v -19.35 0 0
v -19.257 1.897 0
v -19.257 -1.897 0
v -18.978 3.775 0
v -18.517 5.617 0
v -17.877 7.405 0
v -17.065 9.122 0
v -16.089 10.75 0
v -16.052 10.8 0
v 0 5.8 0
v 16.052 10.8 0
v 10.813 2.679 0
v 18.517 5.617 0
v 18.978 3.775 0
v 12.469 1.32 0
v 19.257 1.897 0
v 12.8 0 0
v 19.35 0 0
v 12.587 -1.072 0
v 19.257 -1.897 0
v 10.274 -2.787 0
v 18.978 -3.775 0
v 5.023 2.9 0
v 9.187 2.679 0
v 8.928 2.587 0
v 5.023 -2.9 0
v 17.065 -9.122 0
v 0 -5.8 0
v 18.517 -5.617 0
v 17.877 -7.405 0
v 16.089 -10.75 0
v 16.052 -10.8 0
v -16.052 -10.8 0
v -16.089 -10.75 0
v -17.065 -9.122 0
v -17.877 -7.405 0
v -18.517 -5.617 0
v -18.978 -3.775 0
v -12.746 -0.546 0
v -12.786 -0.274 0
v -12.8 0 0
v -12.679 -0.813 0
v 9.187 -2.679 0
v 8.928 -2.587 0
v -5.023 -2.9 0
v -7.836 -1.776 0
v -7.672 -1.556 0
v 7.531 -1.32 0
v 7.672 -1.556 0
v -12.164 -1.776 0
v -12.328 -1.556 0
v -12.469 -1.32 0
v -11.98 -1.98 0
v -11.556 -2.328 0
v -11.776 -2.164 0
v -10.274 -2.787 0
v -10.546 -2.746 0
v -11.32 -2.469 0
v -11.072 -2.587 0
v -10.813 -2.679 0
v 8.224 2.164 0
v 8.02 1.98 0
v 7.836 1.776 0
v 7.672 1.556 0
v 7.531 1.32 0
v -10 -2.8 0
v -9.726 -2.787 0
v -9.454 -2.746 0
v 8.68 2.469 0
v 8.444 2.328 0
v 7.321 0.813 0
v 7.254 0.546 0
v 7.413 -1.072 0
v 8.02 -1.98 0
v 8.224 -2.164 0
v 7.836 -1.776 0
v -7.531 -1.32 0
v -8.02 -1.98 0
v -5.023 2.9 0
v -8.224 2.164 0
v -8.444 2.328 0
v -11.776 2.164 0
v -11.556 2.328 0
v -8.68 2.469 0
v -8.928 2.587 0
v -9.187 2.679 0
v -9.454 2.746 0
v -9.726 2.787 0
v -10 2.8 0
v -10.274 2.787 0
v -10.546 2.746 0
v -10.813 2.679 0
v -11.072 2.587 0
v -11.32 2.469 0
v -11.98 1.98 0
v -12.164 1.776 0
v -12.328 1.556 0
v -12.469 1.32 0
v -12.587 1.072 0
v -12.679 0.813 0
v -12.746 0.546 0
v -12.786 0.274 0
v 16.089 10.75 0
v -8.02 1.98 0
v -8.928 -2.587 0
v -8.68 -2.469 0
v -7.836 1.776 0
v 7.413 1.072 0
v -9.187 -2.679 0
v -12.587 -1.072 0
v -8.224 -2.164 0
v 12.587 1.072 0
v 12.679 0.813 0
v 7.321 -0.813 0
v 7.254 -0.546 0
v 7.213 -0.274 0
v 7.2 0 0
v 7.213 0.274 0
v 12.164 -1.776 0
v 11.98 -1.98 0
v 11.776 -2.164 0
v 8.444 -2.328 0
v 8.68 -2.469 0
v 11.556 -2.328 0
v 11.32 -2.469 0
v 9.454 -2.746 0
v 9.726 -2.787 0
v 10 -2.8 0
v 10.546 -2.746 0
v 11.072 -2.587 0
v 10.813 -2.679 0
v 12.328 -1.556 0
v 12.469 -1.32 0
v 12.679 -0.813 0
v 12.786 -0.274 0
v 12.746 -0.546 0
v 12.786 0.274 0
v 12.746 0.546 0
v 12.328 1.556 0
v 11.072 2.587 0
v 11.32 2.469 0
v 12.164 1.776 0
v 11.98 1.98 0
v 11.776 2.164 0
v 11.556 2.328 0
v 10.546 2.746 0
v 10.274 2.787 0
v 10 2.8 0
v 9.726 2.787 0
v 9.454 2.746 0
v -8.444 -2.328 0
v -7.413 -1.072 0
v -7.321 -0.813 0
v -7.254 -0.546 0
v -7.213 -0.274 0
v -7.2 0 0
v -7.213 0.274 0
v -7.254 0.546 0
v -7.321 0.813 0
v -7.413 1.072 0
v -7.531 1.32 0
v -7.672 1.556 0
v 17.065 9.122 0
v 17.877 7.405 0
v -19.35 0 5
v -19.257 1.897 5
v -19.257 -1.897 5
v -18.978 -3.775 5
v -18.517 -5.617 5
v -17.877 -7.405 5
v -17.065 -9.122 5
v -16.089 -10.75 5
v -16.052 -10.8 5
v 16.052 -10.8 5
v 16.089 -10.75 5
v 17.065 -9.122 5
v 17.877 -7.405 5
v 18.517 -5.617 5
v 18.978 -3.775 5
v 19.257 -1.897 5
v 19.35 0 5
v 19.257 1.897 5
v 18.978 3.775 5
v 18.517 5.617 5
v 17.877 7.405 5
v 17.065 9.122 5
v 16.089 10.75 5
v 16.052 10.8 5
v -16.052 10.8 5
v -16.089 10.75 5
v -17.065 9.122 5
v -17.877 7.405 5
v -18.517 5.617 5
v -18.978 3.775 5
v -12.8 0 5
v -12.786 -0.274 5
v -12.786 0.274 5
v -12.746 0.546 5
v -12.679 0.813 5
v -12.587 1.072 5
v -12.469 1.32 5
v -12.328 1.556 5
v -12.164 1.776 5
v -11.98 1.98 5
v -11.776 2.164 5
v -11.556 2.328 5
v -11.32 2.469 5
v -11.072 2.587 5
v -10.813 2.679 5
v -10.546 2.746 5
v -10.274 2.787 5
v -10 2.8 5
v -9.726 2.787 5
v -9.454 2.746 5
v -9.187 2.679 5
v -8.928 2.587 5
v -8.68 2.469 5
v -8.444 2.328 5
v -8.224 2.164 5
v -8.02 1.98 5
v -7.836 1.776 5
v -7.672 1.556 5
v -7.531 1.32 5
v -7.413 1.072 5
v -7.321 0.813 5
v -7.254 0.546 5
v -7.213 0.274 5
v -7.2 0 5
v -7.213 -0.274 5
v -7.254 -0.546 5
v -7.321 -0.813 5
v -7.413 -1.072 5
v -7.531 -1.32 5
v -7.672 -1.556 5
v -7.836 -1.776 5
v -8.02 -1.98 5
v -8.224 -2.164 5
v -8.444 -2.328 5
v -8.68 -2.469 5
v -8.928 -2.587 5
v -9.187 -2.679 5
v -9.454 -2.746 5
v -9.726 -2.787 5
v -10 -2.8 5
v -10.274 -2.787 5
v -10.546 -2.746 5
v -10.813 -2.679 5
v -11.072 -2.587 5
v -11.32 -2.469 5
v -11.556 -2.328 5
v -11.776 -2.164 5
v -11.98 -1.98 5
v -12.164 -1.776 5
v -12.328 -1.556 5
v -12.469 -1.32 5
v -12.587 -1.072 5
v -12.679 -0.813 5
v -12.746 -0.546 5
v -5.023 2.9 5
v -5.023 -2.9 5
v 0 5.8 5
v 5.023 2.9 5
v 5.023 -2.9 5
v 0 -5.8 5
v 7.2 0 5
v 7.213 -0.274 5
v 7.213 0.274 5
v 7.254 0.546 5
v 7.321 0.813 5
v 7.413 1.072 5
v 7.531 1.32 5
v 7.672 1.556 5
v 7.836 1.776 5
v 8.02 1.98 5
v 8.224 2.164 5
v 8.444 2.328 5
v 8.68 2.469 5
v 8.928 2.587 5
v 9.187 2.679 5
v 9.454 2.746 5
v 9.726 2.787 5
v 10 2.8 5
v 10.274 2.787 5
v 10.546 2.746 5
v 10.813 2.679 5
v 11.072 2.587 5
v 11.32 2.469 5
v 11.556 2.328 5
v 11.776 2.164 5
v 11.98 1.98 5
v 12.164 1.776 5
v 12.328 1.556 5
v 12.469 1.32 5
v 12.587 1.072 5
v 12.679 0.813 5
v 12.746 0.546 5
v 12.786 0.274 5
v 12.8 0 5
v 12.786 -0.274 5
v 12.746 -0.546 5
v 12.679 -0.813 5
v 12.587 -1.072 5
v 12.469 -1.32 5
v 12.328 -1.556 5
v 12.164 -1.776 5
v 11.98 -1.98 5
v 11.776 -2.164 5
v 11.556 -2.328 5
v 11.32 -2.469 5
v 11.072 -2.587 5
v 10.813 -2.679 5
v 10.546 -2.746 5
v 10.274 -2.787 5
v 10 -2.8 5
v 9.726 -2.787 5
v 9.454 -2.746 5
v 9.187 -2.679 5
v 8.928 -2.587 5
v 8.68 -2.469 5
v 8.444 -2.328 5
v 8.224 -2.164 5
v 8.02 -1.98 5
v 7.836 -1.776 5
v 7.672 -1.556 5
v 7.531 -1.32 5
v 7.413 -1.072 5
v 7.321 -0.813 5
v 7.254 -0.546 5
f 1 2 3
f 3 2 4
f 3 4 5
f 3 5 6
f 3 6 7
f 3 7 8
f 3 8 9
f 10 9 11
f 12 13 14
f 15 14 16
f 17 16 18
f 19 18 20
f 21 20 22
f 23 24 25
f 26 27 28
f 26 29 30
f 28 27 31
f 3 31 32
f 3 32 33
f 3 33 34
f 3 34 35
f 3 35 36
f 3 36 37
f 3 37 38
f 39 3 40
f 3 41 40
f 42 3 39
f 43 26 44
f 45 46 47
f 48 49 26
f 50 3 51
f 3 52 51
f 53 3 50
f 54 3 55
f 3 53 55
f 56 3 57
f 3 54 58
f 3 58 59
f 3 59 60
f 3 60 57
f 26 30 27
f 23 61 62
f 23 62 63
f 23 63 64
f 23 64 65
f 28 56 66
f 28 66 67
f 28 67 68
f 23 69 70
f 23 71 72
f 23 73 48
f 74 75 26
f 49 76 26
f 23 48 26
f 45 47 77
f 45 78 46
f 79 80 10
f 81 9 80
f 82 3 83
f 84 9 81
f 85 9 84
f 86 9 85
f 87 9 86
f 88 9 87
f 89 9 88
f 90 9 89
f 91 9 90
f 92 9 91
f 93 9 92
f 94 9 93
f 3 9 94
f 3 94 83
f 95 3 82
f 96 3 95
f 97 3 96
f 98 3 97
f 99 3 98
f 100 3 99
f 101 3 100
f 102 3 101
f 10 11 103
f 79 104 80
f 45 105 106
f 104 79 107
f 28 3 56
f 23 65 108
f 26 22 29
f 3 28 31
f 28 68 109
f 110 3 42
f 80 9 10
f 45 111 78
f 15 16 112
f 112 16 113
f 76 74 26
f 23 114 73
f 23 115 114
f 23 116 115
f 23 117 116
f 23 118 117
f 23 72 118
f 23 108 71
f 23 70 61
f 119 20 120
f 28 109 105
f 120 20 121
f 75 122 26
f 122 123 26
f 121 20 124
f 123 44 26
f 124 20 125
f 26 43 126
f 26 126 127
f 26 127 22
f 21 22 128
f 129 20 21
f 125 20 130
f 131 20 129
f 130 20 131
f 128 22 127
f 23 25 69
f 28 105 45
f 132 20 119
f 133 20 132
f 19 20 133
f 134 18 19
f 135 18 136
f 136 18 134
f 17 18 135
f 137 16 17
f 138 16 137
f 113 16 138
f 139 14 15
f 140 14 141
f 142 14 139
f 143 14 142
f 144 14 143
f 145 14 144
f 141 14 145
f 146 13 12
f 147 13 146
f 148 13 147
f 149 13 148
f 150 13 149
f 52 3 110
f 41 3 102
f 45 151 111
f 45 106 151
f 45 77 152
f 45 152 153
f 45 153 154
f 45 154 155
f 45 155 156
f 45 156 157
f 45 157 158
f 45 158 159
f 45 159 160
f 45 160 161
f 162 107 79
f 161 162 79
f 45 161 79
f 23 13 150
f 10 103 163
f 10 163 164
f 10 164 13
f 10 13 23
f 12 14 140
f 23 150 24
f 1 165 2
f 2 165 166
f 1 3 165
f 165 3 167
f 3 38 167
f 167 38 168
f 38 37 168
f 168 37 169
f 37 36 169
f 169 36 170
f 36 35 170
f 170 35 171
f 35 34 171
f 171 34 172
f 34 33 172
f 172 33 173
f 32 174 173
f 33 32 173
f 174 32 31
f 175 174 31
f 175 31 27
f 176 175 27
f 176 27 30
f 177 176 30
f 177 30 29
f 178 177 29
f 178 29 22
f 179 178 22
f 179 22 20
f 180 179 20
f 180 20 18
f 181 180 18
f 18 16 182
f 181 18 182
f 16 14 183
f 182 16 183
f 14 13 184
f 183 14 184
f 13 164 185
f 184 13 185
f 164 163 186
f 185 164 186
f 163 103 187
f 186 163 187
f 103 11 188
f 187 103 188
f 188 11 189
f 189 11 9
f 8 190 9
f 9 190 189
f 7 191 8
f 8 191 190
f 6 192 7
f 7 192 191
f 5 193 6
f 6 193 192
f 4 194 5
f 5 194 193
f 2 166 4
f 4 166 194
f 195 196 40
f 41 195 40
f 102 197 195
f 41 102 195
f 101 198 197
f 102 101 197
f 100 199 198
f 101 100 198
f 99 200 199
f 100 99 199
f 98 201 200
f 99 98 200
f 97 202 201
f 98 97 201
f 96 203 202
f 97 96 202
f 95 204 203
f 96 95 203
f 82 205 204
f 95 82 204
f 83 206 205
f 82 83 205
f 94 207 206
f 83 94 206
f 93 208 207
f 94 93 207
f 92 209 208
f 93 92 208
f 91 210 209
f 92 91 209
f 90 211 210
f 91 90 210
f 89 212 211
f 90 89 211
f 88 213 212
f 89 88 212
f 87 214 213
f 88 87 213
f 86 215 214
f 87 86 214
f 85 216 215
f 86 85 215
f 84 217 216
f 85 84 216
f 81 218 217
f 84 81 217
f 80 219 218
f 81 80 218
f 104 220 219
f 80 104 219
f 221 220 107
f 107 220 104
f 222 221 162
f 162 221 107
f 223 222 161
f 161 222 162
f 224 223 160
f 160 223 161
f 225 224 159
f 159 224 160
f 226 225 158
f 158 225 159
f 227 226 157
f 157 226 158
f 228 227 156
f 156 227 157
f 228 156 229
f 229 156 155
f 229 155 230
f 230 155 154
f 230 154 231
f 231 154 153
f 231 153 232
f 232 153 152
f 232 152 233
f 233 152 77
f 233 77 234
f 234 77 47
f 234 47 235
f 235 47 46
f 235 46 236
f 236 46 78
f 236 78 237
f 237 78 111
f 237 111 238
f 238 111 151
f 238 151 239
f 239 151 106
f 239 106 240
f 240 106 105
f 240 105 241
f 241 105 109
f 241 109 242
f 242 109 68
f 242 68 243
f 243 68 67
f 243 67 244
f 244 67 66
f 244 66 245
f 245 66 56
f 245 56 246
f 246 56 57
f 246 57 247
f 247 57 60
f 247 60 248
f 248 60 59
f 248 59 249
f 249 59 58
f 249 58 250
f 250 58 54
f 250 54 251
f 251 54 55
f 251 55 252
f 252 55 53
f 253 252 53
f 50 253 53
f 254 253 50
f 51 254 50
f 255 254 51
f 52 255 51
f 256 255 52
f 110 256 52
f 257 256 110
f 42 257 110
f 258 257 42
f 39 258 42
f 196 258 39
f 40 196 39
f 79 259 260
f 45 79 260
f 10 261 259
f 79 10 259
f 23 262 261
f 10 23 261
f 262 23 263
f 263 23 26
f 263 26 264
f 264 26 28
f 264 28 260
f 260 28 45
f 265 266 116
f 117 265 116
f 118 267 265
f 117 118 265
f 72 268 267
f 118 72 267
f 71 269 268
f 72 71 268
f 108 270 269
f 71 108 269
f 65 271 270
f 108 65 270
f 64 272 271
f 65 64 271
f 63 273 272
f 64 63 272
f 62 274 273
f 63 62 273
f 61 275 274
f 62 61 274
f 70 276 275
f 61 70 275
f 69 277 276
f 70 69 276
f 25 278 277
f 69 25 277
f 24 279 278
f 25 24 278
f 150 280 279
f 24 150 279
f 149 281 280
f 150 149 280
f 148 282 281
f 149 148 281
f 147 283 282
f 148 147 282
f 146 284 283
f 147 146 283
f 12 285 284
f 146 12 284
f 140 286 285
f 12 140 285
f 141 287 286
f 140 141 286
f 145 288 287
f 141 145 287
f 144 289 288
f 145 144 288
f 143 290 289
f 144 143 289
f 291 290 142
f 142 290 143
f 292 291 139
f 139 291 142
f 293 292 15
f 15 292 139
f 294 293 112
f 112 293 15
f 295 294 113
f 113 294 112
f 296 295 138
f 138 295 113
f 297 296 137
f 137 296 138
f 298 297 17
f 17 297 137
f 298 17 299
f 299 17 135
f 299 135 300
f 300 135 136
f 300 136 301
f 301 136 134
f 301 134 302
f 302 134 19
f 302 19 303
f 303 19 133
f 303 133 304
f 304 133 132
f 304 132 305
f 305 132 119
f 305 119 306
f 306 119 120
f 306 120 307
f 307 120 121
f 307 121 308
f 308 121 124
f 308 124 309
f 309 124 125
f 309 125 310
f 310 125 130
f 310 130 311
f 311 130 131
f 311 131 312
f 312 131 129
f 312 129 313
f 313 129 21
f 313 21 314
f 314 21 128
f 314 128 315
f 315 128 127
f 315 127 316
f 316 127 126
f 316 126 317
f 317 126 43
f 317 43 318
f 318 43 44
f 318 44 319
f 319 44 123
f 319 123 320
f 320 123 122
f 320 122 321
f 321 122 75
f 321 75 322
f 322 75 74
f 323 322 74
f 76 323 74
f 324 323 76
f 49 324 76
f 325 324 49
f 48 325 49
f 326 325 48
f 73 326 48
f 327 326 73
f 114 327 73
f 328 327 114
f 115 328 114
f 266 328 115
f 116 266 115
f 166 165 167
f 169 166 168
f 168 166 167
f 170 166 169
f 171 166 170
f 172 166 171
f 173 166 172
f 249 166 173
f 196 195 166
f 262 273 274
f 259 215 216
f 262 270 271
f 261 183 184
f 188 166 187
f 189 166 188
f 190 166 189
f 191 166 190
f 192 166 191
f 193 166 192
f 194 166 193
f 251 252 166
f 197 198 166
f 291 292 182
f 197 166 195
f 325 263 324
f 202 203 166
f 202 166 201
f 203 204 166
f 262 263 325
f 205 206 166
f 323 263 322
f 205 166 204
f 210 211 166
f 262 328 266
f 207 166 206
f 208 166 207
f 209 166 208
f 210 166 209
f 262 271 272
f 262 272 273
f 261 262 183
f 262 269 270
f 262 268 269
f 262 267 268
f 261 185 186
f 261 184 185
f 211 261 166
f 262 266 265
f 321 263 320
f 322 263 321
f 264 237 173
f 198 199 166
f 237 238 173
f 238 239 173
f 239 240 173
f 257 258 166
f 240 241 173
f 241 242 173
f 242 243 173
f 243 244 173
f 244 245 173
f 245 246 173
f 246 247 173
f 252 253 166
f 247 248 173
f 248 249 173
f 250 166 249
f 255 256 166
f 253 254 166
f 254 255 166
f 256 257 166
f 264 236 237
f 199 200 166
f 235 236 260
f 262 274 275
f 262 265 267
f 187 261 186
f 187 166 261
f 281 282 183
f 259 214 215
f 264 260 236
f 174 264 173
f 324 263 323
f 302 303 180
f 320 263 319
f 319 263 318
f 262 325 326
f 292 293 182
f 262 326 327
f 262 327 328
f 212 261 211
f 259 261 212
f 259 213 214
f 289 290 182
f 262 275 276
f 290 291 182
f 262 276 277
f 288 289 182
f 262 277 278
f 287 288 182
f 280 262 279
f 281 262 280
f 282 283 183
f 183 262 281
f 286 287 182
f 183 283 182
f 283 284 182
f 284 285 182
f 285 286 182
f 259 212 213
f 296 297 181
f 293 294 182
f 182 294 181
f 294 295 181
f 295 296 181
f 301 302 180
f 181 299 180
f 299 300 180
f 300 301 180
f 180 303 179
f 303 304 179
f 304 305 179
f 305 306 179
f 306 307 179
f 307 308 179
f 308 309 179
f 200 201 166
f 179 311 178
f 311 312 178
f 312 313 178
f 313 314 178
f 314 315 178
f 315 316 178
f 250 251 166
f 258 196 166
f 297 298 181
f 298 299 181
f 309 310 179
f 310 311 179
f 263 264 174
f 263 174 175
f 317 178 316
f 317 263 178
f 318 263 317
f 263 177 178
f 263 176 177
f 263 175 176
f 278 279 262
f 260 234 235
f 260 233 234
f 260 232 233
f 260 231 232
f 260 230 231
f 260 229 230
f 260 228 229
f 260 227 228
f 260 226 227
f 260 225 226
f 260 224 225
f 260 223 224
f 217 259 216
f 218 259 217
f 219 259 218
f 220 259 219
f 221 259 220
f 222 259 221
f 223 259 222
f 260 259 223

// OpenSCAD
$fn=64;
fudge_r = 0.3;
long=100;

bolt_head_h = 5.0;
bolt_head_r = 5.5+fudge_r;

mount_hole_r = 2.5+fudge_r;

washer_outer_r = 38.1/2 + fudge_r;

// distance of makerslide slot from center of makerslide (2 slots)
slot_c = 10.0;

difference() {
	cylinder(r=washer_outer_r, h=bolt_head_h);
	
	translate([-long/2, bolt_head_r + 5, -long/2])
		cube([long, long, long]);

	translate([-long/2, -long - bolt_head_r - 5, -long/2])
		cube([long, long, long]);
	
	// for 1/4"-20 bolt head
	rotate([0, 0, 30])
		cylinder(r=bolt_head_r, h=long, $fn=6);

	// for 5mm bolts that mount the washer + this plastic part to the makerslide
	for (x=[-1,1]) {
		translate([x*slot_c, 0, 0])
			cylinder(r=mount_hole_r, h=long);
	}
}
